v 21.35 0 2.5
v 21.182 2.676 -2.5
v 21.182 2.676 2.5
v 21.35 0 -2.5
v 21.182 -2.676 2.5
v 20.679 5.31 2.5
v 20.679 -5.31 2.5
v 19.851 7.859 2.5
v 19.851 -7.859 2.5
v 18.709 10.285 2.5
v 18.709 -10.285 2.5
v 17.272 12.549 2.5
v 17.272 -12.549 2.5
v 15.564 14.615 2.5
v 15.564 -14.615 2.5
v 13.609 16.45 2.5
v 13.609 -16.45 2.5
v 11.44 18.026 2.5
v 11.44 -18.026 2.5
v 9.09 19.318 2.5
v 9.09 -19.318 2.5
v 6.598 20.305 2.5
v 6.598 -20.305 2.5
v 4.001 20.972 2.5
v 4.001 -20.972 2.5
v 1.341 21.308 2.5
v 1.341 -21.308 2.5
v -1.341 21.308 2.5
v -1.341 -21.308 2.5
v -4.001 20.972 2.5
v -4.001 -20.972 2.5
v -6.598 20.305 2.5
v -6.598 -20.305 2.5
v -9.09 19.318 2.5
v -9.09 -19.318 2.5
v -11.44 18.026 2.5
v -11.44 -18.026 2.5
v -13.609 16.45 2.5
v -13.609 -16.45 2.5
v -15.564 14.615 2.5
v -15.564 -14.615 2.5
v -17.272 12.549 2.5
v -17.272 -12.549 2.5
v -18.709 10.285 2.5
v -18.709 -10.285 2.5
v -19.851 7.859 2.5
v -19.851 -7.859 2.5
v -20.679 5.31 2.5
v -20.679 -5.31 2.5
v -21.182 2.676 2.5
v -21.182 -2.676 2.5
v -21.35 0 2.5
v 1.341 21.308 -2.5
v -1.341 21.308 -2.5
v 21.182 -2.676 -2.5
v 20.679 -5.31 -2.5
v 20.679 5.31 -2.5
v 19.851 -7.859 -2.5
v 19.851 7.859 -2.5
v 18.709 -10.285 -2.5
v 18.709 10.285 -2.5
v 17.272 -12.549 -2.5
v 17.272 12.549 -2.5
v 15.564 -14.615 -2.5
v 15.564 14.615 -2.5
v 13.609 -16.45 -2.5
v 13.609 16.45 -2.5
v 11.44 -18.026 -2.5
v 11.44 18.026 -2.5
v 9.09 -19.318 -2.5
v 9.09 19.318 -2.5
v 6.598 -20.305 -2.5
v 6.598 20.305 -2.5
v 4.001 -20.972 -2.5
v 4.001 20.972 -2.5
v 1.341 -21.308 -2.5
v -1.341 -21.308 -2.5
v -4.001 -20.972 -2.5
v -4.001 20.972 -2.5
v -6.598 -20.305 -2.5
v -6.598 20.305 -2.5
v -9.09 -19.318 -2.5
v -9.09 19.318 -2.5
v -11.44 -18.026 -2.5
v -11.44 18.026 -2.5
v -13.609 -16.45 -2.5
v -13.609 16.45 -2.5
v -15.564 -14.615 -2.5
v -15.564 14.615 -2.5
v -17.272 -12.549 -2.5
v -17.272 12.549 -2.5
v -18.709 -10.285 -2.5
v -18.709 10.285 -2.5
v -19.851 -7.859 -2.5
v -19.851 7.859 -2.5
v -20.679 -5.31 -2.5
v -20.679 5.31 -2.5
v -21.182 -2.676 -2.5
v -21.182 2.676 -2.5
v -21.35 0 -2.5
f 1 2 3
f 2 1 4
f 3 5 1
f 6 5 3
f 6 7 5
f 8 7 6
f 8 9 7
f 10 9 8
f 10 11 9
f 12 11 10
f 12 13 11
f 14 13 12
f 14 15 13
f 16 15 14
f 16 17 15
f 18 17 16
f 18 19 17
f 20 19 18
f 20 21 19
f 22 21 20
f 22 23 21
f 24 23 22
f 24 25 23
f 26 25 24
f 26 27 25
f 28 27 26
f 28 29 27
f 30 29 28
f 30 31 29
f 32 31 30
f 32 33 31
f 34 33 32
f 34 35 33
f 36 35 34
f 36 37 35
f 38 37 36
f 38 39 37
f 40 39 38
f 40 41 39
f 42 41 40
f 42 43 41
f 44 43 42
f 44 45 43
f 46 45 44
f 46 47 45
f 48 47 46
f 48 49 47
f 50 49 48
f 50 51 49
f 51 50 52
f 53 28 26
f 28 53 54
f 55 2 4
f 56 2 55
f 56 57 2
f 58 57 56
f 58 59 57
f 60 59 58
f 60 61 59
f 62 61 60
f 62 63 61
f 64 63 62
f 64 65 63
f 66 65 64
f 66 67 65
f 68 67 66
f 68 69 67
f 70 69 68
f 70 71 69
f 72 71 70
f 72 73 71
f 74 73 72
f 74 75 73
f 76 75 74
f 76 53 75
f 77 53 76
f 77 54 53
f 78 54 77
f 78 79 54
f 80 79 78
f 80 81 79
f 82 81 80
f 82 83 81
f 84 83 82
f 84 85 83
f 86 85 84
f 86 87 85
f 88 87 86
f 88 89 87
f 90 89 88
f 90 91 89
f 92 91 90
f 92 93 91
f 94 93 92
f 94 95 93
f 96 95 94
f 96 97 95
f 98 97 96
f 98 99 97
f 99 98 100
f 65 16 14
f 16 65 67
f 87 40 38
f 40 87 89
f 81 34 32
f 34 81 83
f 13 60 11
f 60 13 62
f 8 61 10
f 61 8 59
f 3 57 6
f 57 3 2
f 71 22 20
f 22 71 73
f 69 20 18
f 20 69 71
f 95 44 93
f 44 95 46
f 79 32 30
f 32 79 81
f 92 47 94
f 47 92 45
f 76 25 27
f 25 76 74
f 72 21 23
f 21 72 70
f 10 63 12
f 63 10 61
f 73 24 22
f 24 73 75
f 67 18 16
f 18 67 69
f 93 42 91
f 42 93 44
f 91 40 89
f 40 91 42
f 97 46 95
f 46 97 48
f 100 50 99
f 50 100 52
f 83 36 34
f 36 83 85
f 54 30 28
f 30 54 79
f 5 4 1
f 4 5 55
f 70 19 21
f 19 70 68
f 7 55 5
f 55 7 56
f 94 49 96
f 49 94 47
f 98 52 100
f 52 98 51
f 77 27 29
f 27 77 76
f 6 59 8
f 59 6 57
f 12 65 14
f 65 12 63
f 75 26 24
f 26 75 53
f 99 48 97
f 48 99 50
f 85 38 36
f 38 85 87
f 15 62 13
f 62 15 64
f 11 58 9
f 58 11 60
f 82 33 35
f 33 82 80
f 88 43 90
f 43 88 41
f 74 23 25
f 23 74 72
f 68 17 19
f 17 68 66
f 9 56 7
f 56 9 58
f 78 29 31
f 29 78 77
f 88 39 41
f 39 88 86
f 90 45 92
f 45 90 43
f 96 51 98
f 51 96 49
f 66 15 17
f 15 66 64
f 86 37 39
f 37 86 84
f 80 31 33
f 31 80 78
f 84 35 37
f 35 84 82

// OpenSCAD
$fn = 50;


difference() {
	union() {
		translate(v = [0, 0, -2.5000000000]) {
			cylinder(h = 5, r = 21.3500000000);
		}
	}
	union() {
		translate(v = [0, 0, -100.0000000000]) {
			cylinder(h = 200, r = 0);
		}
	}
}
